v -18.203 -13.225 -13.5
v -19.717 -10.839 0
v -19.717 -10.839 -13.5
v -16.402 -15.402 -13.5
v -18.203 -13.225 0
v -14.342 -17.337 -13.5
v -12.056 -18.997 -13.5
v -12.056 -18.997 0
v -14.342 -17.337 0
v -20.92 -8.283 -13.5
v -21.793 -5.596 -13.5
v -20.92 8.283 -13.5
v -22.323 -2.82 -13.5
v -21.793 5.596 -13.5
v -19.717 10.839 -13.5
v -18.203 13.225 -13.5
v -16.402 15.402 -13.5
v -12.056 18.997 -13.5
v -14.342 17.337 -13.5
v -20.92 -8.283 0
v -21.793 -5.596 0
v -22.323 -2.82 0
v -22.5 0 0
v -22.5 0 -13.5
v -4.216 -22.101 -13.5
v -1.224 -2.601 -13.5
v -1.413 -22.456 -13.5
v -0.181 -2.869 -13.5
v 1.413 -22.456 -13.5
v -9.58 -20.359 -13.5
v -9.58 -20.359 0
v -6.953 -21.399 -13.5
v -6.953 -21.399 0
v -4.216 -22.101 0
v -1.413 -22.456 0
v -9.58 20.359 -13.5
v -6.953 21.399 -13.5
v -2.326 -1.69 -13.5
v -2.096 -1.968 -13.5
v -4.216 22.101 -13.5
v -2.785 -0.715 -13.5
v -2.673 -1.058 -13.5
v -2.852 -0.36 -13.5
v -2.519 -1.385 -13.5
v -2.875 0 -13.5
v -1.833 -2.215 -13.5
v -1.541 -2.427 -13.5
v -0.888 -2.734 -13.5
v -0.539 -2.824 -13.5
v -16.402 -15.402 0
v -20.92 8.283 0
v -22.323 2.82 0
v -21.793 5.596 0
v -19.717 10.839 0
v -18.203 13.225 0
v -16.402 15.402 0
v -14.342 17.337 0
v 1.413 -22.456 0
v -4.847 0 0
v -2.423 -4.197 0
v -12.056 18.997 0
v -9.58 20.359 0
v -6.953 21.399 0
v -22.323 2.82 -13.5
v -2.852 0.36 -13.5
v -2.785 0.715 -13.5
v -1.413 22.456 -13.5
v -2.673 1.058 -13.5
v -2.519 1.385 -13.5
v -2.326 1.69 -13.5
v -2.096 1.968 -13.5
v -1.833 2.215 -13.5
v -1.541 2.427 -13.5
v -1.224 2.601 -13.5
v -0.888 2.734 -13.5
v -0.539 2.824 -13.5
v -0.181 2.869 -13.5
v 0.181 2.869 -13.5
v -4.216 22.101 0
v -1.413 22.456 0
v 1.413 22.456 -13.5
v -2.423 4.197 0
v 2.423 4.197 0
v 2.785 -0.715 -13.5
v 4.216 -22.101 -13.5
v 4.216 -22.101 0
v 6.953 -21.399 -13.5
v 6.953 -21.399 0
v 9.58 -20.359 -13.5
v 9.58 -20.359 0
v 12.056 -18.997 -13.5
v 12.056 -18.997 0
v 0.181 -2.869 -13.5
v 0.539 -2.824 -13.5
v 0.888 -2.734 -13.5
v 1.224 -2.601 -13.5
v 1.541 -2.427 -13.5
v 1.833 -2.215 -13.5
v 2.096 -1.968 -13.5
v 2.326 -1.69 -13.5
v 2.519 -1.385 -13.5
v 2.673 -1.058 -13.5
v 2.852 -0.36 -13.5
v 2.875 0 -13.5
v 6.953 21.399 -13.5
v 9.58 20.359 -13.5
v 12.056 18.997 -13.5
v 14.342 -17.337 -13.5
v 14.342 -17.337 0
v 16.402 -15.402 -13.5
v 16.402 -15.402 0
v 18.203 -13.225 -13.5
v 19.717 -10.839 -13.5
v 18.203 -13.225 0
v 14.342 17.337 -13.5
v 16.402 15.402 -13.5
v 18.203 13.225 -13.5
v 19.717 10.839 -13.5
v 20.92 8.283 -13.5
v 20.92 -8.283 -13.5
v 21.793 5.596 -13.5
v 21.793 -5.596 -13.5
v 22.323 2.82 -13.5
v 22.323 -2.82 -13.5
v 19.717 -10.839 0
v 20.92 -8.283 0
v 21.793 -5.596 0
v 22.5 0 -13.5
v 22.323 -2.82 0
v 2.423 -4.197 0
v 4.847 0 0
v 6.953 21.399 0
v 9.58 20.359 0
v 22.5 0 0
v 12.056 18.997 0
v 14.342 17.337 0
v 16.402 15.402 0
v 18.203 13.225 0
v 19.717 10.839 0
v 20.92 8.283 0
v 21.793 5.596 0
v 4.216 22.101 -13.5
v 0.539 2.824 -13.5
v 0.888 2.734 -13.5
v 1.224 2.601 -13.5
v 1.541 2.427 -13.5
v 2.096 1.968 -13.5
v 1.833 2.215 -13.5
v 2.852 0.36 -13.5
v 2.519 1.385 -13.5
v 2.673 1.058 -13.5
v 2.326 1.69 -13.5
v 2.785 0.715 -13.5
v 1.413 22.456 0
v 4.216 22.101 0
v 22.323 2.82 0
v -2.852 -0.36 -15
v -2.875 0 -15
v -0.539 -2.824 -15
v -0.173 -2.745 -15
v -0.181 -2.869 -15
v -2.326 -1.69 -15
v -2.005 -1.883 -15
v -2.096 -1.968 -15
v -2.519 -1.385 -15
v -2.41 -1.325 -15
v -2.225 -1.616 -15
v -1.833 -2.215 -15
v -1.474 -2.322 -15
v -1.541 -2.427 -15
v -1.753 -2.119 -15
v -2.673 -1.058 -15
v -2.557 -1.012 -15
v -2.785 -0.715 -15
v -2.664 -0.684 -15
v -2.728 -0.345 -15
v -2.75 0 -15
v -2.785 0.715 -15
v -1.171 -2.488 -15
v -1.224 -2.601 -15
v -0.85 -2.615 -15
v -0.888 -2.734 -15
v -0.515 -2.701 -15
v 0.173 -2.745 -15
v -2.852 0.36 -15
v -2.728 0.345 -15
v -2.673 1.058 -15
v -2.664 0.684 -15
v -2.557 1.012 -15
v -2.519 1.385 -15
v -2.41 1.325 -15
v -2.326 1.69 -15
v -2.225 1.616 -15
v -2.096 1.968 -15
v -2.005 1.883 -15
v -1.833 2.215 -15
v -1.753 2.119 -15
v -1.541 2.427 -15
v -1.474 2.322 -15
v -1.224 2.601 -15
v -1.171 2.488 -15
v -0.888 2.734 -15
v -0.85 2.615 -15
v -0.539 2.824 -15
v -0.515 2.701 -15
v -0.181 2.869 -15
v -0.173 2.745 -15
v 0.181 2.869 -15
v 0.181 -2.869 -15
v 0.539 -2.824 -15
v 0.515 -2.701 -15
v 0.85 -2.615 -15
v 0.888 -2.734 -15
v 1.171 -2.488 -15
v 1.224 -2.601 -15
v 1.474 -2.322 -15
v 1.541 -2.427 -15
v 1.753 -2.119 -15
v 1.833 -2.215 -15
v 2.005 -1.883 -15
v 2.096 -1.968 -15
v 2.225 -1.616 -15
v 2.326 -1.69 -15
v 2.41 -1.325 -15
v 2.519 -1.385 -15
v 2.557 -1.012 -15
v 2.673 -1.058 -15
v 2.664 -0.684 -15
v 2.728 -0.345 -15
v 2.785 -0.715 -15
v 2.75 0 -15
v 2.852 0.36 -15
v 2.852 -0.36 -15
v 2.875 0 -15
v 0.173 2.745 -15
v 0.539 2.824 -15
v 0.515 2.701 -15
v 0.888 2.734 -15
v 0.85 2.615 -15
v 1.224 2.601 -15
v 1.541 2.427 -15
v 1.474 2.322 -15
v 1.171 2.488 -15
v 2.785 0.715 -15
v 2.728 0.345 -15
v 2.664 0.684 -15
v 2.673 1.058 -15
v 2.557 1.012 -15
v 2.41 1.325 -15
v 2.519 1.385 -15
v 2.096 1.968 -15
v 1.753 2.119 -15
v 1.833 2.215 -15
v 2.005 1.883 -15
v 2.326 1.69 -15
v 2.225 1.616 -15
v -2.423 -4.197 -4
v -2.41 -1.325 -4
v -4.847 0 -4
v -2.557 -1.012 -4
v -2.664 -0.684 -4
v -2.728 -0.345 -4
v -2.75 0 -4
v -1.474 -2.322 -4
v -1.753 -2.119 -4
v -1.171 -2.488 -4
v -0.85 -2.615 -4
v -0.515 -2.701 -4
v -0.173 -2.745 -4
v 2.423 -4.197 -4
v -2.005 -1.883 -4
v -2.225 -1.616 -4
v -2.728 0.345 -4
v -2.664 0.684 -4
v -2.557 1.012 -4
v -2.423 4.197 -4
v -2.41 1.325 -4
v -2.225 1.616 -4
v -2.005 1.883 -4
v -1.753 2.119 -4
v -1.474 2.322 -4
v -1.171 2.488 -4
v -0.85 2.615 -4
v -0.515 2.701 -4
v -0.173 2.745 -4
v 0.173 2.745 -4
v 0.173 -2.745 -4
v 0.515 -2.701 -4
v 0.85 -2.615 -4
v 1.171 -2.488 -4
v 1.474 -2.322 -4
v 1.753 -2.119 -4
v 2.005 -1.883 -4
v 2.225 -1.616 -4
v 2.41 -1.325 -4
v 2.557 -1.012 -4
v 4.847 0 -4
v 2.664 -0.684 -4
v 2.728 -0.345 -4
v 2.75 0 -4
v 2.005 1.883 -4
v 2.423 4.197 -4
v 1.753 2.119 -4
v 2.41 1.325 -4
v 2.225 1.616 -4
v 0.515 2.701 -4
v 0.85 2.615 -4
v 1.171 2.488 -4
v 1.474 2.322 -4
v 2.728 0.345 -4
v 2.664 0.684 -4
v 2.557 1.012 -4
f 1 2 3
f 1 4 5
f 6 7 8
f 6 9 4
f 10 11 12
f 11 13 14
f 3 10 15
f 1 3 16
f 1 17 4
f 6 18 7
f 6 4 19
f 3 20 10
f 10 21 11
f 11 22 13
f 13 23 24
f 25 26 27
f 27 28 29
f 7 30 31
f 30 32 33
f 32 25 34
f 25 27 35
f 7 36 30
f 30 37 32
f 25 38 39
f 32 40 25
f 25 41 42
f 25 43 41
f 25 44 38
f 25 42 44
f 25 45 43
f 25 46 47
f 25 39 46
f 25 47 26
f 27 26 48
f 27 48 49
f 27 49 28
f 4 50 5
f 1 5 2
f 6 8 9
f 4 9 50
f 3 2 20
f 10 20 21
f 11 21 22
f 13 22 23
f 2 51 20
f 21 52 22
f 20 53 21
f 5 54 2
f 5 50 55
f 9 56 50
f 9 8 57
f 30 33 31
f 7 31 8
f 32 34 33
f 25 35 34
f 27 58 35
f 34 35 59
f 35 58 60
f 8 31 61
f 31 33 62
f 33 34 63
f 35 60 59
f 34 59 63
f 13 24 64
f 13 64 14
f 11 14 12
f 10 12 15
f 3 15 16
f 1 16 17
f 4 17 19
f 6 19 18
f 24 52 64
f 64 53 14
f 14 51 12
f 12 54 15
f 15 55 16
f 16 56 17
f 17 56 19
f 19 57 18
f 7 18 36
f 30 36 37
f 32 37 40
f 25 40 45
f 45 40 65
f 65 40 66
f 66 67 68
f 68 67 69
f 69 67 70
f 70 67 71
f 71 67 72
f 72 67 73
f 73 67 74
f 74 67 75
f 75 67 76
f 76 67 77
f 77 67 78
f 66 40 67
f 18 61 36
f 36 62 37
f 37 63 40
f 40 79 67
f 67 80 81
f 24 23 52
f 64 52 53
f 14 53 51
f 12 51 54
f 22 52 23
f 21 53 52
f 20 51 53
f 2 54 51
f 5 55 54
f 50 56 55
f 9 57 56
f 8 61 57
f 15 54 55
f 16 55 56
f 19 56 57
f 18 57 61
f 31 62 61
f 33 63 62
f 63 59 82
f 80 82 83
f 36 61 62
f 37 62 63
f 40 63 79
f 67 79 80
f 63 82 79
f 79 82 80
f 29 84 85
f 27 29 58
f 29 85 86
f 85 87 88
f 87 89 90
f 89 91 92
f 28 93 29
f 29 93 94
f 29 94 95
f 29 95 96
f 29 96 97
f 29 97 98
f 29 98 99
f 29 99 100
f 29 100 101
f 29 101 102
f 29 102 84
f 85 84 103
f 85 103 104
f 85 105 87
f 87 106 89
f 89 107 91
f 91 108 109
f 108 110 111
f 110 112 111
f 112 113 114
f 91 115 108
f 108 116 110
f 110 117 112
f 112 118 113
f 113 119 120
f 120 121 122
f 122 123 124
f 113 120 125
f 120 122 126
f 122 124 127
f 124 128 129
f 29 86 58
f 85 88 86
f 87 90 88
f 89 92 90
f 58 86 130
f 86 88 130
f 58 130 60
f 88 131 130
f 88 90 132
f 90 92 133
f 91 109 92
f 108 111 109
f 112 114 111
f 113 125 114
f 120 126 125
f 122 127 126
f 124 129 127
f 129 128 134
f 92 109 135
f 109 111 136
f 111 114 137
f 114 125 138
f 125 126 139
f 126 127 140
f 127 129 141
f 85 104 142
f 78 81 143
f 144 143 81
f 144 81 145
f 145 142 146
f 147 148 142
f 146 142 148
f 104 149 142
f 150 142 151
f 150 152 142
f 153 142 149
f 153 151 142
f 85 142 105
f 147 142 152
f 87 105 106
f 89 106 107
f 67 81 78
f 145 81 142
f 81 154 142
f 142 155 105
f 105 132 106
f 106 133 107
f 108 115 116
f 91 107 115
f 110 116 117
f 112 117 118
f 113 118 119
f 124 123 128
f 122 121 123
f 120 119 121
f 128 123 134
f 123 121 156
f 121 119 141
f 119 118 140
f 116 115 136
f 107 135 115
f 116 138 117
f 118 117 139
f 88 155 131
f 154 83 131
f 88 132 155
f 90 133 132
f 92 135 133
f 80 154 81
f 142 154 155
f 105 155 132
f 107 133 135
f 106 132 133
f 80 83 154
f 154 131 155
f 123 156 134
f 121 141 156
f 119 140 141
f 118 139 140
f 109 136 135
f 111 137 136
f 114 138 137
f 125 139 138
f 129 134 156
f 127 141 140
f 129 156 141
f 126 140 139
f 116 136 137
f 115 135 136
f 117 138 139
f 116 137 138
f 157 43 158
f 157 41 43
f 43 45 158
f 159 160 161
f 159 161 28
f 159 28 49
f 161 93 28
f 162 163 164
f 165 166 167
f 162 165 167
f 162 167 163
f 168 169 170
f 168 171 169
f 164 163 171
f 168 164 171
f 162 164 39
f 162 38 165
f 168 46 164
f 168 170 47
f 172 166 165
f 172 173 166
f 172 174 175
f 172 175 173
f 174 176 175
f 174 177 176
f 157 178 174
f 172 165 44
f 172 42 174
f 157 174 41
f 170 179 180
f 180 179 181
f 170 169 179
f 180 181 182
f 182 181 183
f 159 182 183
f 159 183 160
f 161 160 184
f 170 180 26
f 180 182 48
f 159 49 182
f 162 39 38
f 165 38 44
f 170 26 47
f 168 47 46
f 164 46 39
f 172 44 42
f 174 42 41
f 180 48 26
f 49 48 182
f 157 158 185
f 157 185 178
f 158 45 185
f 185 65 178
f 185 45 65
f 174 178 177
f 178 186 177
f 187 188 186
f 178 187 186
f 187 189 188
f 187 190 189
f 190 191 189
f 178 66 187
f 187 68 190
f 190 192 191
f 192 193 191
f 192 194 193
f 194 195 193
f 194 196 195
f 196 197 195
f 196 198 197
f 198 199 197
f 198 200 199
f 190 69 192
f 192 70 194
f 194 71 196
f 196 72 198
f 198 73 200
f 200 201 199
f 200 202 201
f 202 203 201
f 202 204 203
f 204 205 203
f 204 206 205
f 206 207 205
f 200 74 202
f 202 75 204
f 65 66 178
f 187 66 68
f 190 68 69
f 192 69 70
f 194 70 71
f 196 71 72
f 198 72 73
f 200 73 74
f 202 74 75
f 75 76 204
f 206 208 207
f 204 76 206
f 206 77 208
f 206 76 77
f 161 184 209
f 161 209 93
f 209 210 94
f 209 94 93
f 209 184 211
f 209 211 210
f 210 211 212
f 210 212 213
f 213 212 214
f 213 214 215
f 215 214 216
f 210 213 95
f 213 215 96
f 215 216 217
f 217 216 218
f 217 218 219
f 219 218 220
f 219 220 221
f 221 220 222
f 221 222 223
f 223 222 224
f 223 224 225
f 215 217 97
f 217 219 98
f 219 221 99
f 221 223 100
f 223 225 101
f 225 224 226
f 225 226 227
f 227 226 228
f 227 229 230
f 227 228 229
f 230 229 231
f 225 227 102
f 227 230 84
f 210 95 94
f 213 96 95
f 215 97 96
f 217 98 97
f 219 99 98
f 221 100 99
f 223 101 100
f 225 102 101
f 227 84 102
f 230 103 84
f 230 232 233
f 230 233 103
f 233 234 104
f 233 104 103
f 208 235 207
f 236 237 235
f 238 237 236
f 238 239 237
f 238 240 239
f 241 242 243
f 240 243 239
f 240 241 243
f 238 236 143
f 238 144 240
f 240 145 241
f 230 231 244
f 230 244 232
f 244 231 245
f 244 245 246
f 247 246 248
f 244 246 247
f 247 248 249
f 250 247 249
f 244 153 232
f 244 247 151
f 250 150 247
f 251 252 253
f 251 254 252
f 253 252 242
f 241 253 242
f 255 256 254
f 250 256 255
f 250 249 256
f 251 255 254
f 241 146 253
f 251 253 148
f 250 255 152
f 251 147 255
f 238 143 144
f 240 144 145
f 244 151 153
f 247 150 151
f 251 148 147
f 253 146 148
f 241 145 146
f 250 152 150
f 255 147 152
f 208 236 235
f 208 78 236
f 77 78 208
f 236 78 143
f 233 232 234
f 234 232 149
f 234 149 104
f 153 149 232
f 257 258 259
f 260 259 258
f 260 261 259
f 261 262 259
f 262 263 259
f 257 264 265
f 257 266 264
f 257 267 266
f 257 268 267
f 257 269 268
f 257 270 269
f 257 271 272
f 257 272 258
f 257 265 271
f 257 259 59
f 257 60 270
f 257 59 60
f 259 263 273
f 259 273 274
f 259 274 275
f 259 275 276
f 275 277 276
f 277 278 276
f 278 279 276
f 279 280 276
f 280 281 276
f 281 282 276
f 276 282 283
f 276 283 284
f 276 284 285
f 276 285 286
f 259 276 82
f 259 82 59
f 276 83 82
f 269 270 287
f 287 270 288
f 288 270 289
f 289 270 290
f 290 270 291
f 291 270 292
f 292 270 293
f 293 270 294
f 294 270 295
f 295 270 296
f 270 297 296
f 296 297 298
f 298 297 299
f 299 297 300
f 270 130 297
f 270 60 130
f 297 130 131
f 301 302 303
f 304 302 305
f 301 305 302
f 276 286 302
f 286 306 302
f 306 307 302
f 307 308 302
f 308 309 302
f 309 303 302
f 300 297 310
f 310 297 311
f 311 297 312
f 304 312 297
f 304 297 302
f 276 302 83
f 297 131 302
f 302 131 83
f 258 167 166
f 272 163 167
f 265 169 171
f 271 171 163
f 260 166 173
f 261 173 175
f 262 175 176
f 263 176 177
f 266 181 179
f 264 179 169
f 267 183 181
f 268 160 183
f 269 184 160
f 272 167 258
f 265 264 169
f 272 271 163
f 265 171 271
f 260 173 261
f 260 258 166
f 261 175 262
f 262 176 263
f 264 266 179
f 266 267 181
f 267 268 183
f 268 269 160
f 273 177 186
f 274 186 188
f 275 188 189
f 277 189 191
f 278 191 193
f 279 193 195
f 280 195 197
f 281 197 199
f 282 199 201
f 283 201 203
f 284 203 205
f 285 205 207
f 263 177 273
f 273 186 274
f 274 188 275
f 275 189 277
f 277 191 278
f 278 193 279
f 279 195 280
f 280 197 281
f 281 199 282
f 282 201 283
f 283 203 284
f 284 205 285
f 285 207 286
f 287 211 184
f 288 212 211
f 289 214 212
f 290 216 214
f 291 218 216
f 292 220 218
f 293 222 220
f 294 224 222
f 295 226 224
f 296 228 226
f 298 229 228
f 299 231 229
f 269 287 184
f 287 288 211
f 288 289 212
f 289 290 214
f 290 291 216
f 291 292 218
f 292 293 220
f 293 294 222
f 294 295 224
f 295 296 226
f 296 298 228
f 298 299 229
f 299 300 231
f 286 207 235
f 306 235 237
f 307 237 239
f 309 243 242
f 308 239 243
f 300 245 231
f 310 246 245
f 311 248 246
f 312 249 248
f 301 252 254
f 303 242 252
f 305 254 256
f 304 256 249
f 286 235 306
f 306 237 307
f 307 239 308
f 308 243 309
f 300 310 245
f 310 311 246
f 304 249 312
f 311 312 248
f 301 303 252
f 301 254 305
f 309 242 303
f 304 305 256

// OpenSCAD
$fn = 50;


difference() {
	union() {
		translate(v = [0, 0, -13.5000000000]) {
			cylinder(h = 13.5000000000, r = 22.5000000000);
		}
		#translate(v = [0, 0, -15.0000000000]) {
			cylinder(h = 15, r = 2.8750000000);
		}
	}
	union() {
		translate(v = [0, 0, 0]) {
			rotate(a = [0, 0, 0]) {
				difference() {
					union() {
						translate(v = [0, 0, -4]) {
							linear_extrude(height = 4) {
								polygon(points = [[4.8468000000, 0.0000000000], [2.4234000000, 4.1974519271], [-2.4234000000, 4.1974519271], [-4.8468000000, 0.0000000000], [-2.4234000000, -4.1974519271], [2.4234000000, -4.1974519271]]);
							}
						}
					}
					union();
				}
			}
		}
		#translate(v = [0, 0, -100.0000000000]) {
			cylinder(h = 200, r = 2.7500000000);
		}
	}
}
